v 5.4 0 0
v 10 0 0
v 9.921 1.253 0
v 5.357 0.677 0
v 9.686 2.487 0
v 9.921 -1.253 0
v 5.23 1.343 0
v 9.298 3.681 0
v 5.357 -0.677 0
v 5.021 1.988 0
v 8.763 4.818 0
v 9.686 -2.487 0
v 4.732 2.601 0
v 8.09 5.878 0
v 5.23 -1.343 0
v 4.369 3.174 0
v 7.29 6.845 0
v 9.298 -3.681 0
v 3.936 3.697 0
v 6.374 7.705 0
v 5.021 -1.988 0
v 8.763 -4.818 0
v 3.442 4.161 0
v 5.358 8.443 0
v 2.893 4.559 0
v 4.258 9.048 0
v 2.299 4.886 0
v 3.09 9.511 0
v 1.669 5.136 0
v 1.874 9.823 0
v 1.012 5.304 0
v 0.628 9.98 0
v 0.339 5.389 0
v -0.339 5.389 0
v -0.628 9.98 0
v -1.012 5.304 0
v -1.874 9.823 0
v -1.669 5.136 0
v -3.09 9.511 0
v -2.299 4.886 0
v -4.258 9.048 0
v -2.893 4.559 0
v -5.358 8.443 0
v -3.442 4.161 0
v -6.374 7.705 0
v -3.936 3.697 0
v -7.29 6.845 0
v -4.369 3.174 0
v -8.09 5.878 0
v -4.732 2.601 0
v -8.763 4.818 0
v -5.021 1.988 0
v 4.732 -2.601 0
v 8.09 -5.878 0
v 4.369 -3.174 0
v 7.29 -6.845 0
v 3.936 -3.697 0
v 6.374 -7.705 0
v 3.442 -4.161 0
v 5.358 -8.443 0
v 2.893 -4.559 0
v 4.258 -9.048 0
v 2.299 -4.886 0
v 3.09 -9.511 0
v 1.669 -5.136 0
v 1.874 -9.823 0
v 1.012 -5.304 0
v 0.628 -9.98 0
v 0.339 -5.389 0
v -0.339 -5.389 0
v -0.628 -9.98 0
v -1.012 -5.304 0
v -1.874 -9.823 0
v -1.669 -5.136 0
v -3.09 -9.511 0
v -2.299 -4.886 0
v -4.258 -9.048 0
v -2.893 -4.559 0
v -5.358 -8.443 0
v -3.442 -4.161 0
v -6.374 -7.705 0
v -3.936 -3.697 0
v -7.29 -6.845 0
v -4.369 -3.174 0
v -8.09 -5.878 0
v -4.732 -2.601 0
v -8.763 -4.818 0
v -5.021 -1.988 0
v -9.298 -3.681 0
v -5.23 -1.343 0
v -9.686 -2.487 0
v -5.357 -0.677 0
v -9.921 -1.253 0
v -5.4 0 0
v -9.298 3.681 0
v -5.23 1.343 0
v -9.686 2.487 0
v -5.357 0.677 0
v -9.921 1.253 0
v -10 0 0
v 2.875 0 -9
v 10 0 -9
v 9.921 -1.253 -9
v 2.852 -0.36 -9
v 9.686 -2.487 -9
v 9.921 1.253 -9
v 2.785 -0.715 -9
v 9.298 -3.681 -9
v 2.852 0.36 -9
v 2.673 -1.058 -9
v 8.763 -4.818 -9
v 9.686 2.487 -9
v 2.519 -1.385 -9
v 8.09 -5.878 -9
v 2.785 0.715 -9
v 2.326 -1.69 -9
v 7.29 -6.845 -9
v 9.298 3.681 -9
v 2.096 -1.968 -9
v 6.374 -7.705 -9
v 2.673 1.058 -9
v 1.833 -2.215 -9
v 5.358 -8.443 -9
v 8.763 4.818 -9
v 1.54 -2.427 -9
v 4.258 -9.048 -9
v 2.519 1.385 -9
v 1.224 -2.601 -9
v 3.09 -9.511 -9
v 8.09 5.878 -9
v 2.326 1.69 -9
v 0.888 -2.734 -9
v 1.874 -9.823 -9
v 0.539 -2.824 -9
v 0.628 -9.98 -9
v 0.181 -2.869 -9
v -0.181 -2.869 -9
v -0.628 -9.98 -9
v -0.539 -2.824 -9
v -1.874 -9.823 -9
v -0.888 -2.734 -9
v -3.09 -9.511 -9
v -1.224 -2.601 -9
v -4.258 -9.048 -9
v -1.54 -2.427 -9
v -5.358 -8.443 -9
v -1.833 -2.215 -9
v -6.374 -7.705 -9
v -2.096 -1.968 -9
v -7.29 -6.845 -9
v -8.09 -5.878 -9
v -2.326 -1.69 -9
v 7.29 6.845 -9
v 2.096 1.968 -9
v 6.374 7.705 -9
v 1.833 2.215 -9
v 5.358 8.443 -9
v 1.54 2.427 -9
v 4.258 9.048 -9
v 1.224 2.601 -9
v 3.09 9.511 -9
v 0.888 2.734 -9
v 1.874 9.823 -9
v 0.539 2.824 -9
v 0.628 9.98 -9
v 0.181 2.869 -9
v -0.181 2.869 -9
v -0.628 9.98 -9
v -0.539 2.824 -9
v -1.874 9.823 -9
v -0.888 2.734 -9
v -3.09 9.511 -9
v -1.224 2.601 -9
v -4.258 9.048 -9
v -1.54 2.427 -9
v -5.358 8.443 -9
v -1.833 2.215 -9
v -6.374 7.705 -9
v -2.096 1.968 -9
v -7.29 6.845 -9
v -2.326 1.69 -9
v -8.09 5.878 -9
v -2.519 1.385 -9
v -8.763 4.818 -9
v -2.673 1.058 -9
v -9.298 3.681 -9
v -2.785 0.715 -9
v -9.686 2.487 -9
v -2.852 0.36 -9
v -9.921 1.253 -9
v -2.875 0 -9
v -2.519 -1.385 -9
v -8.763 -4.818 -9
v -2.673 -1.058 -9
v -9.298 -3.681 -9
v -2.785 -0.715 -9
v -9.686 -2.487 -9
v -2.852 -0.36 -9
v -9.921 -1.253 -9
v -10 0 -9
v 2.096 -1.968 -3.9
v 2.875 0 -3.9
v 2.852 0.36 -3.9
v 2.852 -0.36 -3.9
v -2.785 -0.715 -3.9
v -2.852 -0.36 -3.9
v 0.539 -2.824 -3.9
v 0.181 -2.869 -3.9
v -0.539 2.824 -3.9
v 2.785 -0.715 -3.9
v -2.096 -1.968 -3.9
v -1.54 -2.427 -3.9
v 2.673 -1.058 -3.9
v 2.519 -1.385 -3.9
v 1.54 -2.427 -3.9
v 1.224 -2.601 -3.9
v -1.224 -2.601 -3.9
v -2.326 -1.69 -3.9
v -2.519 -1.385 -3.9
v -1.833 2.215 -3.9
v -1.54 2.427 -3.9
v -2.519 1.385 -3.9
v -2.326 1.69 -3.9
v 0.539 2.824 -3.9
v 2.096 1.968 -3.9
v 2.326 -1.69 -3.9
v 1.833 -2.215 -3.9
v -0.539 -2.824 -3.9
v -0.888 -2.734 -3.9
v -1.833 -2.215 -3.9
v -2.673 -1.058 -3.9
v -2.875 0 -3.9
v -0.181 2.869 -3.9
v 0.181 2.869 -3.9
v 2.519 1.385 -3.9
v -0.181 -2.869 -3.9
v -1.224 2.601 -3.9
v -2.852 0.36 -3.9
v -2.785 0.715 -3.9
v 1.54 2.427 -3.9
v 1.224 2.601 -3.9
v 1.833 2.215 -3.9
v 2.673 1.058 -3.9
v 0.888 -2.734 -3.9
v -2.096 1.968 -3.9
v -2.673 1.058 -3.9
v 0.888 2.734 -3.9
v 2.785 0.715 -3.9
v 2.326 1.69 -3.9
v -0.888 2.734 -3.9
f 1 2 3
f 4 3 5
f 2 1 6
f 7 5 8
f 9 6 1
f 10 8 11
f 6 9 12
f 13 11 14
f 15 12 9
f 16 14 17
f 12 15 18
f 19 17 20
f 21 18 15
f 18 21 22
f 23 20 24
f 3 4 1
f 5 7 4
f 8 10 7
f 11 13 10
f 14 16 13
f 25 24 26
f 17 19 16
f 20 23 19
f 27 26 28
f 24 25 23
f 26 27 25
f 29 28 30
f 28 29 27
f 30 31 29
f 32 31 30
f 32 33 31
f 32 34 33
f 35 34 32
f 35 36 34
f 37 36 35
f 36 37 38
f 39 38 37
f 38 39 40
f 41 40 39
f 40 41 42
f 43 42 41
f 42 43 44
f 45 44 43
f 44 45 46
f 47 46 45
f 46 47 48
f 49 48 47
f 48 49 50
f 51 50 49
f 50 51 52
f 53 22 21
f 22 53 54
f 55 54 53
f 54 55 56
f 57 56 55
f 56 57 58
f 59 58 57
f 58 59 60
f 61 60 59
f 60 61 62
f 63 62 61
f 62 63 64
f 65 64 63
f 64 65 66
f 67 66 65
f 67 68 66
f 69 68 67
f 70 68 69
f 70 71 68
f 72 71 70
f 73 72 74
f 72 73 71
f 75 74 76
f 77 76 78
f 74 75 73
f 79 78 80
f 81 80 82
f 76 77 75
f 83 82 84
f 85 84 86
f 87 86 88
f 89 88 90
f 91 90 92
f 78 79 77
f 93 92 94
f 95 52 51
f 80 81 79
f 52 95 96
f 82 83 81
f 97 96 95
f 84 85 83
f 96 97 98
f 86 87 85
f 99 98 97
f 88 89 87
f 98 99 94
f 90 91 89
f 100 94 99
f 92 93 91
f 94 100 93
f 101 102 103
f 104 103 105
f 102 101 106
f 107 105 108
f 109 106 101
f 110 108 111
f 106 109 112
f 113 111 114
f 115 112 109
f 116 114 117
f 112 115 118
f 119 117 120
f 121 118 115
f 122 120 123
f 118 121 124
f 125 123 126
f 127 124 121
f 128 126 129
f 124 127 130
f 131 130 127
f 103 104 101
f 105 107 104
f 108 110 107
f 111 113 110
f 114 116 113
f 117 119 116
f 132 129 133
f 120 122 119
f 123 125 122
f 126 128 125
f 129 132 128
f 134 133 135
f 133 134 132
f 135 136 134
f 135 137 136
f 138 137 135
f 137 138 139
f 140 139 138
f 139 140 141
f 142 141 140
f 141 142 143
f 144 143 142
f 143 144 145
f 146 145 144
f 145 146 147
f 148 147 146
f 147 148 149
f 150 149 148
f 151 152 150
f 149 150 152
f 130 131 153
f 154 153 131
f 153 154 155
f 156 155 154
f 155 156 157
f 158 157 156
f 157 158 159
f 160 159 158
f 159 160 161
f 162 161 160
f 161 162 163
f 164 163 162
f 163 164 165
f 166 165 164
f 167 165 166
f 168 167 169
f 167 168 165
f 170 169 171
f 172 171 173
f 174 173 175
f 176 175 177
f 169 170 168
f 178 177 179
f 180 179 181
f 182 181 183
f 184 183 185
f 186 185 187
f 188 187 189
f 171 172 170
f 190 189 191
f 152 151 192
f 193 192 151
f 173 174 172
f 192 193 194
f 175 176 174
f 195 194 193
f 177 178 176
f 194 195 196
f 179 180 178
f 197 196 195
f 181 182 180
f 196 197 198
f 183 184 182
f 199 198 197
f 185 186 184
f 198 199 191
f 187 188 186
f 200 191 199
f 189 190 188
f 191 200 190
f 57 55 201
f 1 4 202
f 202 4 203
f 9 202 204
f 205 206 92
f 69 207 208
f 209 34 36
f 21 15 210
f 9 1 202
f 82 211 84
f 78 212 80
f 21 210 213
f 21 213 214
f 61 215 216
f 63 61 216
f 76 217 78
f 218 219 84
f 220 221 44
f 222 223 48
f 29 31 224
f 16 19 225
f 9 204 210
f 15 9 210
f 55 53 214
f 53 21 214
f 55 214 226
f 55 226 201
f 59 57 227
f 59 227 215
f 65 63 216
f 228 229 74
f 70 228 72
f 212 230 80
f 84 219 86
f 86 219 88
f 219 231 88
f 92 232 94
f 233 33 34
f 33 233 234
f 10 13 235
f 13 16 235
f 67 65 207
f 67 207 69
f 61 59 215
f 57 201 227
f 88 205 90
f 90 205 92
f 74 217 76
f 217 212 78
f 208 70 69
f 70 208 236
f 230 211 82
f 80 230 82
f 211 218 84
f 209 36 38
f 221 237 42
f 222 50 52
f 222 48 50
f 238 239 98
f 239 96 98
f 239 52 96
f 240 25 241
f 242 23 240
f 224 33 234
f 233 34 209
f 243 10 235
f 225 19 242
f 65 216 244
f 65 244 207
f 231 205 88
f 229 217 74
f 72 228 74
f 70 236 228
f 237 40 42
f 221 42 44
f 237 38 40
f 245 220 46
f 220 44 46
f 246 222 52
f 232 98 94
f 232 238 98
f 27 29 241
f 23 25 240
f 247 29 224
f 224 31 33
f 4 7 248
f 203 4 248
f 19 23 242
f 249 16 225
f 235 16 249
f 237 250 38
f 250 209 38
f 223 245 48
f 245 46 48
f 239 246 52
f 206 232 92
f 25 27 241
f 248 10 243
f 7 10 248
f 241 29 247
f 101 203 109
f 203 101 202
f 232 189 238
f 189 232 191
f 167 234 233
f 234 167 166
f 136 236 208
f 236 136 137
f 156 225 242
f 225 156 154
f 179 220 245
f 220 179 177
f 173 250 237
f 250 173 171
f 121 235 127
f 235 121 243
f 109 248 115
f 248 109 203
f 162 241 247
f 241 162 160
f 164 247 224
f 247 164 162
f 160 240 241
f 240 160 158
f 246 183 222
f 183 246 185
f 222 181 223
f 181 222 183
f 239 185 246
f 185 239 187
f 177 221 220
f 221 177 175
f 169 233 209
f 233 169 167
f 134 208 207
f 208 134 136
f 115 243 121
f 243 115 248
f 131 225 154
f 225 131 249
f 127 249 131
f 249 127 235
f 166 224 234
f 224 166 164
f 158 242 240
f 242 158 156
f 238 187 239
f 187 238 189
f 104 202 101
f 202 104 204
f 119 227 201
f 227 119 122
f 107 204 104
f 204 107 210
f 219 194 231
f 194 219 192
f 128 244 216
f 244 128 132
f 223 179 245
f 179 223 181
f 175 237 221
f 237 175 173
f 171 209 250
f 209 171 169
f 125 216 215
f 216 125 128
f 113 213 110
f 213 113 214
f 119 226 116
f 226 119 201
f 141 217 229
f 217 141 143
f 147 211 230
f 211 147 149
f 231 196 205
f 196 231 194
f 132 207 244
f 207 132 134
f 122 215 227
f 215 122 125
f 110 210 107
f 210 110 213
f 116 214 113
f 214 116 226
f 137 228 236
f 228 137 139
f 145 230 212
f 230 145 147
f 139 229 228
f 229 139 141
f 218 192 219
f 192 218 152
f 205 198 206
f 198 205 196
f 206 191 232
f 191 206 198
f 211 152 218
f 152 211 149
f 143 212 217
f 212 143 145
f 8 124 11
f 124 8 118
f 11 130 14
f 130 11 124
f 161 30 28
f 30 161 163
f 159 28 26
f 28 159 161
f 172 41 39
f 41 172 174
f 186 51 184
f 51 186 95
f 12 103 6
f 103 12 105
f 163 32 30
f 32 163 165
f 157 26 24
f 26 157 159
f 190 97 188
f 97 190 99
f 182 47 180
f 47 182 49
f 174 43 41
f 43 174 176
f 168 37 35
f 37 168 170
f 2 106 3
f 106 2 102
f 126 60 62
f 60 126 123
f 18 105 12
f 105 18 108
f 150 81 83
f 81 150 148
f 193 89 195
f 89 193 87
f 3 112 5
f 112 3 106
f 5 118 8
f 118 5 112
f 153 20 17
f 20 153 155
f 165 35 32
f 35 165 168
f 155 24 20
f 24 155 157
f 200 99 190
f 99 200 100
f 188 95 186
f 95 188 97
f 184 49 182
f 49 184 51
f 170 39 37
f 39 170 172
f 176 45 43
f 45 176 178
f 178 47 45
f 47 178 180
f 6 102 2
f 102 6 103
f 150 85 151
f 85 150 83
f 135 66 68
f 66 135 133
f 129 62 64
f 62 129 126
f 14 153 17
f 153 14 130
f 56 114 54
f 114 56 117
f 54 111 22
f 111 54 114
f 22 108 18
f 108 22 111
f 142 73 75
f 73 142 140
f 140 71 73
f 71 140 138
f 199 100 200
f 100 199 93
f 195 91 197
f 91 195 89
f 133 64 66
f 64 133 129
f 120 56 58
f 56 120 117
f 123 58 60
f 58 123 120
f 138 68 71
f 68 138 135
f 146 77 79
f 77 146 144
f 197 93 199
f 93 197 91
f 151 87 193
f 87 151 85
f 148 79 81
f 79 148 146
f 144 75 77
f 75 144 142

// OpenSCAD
$fn = 50;


difference() {
	union() {
		translate(v = [0, 0, -9.0000000000]) {
			cylinder(h = 9, r = 10.0000000000);
		}
	}
	union() {
		translate(v = [0, 0, 0]) {
			rotate(a = [0, 0, 0]) {
				difference() {
					union() {
						#translate(v = [0, 0, -9.0000000000]) {
							cylinder(h = 9, r = 2.6000000000);
						}
						#translate(v = [0, 0, -3.9000000000]) {
							cylinder(h = 3.9000000000, r = 10.0000000000, r1 = 2.8750000000, r2 = 5.4000000000);
						}
						#translate(v = [0, 0, -9.0000000000]) {
							cylinder(h = 9, r = 2.8750000000);
						}
						#translate(v = [0, 0, -9.0000000000]) {
							cylinder(h = 9, r = 2.6000000000);
						}
					}
					union();
				}
			}
		}
	}
}
